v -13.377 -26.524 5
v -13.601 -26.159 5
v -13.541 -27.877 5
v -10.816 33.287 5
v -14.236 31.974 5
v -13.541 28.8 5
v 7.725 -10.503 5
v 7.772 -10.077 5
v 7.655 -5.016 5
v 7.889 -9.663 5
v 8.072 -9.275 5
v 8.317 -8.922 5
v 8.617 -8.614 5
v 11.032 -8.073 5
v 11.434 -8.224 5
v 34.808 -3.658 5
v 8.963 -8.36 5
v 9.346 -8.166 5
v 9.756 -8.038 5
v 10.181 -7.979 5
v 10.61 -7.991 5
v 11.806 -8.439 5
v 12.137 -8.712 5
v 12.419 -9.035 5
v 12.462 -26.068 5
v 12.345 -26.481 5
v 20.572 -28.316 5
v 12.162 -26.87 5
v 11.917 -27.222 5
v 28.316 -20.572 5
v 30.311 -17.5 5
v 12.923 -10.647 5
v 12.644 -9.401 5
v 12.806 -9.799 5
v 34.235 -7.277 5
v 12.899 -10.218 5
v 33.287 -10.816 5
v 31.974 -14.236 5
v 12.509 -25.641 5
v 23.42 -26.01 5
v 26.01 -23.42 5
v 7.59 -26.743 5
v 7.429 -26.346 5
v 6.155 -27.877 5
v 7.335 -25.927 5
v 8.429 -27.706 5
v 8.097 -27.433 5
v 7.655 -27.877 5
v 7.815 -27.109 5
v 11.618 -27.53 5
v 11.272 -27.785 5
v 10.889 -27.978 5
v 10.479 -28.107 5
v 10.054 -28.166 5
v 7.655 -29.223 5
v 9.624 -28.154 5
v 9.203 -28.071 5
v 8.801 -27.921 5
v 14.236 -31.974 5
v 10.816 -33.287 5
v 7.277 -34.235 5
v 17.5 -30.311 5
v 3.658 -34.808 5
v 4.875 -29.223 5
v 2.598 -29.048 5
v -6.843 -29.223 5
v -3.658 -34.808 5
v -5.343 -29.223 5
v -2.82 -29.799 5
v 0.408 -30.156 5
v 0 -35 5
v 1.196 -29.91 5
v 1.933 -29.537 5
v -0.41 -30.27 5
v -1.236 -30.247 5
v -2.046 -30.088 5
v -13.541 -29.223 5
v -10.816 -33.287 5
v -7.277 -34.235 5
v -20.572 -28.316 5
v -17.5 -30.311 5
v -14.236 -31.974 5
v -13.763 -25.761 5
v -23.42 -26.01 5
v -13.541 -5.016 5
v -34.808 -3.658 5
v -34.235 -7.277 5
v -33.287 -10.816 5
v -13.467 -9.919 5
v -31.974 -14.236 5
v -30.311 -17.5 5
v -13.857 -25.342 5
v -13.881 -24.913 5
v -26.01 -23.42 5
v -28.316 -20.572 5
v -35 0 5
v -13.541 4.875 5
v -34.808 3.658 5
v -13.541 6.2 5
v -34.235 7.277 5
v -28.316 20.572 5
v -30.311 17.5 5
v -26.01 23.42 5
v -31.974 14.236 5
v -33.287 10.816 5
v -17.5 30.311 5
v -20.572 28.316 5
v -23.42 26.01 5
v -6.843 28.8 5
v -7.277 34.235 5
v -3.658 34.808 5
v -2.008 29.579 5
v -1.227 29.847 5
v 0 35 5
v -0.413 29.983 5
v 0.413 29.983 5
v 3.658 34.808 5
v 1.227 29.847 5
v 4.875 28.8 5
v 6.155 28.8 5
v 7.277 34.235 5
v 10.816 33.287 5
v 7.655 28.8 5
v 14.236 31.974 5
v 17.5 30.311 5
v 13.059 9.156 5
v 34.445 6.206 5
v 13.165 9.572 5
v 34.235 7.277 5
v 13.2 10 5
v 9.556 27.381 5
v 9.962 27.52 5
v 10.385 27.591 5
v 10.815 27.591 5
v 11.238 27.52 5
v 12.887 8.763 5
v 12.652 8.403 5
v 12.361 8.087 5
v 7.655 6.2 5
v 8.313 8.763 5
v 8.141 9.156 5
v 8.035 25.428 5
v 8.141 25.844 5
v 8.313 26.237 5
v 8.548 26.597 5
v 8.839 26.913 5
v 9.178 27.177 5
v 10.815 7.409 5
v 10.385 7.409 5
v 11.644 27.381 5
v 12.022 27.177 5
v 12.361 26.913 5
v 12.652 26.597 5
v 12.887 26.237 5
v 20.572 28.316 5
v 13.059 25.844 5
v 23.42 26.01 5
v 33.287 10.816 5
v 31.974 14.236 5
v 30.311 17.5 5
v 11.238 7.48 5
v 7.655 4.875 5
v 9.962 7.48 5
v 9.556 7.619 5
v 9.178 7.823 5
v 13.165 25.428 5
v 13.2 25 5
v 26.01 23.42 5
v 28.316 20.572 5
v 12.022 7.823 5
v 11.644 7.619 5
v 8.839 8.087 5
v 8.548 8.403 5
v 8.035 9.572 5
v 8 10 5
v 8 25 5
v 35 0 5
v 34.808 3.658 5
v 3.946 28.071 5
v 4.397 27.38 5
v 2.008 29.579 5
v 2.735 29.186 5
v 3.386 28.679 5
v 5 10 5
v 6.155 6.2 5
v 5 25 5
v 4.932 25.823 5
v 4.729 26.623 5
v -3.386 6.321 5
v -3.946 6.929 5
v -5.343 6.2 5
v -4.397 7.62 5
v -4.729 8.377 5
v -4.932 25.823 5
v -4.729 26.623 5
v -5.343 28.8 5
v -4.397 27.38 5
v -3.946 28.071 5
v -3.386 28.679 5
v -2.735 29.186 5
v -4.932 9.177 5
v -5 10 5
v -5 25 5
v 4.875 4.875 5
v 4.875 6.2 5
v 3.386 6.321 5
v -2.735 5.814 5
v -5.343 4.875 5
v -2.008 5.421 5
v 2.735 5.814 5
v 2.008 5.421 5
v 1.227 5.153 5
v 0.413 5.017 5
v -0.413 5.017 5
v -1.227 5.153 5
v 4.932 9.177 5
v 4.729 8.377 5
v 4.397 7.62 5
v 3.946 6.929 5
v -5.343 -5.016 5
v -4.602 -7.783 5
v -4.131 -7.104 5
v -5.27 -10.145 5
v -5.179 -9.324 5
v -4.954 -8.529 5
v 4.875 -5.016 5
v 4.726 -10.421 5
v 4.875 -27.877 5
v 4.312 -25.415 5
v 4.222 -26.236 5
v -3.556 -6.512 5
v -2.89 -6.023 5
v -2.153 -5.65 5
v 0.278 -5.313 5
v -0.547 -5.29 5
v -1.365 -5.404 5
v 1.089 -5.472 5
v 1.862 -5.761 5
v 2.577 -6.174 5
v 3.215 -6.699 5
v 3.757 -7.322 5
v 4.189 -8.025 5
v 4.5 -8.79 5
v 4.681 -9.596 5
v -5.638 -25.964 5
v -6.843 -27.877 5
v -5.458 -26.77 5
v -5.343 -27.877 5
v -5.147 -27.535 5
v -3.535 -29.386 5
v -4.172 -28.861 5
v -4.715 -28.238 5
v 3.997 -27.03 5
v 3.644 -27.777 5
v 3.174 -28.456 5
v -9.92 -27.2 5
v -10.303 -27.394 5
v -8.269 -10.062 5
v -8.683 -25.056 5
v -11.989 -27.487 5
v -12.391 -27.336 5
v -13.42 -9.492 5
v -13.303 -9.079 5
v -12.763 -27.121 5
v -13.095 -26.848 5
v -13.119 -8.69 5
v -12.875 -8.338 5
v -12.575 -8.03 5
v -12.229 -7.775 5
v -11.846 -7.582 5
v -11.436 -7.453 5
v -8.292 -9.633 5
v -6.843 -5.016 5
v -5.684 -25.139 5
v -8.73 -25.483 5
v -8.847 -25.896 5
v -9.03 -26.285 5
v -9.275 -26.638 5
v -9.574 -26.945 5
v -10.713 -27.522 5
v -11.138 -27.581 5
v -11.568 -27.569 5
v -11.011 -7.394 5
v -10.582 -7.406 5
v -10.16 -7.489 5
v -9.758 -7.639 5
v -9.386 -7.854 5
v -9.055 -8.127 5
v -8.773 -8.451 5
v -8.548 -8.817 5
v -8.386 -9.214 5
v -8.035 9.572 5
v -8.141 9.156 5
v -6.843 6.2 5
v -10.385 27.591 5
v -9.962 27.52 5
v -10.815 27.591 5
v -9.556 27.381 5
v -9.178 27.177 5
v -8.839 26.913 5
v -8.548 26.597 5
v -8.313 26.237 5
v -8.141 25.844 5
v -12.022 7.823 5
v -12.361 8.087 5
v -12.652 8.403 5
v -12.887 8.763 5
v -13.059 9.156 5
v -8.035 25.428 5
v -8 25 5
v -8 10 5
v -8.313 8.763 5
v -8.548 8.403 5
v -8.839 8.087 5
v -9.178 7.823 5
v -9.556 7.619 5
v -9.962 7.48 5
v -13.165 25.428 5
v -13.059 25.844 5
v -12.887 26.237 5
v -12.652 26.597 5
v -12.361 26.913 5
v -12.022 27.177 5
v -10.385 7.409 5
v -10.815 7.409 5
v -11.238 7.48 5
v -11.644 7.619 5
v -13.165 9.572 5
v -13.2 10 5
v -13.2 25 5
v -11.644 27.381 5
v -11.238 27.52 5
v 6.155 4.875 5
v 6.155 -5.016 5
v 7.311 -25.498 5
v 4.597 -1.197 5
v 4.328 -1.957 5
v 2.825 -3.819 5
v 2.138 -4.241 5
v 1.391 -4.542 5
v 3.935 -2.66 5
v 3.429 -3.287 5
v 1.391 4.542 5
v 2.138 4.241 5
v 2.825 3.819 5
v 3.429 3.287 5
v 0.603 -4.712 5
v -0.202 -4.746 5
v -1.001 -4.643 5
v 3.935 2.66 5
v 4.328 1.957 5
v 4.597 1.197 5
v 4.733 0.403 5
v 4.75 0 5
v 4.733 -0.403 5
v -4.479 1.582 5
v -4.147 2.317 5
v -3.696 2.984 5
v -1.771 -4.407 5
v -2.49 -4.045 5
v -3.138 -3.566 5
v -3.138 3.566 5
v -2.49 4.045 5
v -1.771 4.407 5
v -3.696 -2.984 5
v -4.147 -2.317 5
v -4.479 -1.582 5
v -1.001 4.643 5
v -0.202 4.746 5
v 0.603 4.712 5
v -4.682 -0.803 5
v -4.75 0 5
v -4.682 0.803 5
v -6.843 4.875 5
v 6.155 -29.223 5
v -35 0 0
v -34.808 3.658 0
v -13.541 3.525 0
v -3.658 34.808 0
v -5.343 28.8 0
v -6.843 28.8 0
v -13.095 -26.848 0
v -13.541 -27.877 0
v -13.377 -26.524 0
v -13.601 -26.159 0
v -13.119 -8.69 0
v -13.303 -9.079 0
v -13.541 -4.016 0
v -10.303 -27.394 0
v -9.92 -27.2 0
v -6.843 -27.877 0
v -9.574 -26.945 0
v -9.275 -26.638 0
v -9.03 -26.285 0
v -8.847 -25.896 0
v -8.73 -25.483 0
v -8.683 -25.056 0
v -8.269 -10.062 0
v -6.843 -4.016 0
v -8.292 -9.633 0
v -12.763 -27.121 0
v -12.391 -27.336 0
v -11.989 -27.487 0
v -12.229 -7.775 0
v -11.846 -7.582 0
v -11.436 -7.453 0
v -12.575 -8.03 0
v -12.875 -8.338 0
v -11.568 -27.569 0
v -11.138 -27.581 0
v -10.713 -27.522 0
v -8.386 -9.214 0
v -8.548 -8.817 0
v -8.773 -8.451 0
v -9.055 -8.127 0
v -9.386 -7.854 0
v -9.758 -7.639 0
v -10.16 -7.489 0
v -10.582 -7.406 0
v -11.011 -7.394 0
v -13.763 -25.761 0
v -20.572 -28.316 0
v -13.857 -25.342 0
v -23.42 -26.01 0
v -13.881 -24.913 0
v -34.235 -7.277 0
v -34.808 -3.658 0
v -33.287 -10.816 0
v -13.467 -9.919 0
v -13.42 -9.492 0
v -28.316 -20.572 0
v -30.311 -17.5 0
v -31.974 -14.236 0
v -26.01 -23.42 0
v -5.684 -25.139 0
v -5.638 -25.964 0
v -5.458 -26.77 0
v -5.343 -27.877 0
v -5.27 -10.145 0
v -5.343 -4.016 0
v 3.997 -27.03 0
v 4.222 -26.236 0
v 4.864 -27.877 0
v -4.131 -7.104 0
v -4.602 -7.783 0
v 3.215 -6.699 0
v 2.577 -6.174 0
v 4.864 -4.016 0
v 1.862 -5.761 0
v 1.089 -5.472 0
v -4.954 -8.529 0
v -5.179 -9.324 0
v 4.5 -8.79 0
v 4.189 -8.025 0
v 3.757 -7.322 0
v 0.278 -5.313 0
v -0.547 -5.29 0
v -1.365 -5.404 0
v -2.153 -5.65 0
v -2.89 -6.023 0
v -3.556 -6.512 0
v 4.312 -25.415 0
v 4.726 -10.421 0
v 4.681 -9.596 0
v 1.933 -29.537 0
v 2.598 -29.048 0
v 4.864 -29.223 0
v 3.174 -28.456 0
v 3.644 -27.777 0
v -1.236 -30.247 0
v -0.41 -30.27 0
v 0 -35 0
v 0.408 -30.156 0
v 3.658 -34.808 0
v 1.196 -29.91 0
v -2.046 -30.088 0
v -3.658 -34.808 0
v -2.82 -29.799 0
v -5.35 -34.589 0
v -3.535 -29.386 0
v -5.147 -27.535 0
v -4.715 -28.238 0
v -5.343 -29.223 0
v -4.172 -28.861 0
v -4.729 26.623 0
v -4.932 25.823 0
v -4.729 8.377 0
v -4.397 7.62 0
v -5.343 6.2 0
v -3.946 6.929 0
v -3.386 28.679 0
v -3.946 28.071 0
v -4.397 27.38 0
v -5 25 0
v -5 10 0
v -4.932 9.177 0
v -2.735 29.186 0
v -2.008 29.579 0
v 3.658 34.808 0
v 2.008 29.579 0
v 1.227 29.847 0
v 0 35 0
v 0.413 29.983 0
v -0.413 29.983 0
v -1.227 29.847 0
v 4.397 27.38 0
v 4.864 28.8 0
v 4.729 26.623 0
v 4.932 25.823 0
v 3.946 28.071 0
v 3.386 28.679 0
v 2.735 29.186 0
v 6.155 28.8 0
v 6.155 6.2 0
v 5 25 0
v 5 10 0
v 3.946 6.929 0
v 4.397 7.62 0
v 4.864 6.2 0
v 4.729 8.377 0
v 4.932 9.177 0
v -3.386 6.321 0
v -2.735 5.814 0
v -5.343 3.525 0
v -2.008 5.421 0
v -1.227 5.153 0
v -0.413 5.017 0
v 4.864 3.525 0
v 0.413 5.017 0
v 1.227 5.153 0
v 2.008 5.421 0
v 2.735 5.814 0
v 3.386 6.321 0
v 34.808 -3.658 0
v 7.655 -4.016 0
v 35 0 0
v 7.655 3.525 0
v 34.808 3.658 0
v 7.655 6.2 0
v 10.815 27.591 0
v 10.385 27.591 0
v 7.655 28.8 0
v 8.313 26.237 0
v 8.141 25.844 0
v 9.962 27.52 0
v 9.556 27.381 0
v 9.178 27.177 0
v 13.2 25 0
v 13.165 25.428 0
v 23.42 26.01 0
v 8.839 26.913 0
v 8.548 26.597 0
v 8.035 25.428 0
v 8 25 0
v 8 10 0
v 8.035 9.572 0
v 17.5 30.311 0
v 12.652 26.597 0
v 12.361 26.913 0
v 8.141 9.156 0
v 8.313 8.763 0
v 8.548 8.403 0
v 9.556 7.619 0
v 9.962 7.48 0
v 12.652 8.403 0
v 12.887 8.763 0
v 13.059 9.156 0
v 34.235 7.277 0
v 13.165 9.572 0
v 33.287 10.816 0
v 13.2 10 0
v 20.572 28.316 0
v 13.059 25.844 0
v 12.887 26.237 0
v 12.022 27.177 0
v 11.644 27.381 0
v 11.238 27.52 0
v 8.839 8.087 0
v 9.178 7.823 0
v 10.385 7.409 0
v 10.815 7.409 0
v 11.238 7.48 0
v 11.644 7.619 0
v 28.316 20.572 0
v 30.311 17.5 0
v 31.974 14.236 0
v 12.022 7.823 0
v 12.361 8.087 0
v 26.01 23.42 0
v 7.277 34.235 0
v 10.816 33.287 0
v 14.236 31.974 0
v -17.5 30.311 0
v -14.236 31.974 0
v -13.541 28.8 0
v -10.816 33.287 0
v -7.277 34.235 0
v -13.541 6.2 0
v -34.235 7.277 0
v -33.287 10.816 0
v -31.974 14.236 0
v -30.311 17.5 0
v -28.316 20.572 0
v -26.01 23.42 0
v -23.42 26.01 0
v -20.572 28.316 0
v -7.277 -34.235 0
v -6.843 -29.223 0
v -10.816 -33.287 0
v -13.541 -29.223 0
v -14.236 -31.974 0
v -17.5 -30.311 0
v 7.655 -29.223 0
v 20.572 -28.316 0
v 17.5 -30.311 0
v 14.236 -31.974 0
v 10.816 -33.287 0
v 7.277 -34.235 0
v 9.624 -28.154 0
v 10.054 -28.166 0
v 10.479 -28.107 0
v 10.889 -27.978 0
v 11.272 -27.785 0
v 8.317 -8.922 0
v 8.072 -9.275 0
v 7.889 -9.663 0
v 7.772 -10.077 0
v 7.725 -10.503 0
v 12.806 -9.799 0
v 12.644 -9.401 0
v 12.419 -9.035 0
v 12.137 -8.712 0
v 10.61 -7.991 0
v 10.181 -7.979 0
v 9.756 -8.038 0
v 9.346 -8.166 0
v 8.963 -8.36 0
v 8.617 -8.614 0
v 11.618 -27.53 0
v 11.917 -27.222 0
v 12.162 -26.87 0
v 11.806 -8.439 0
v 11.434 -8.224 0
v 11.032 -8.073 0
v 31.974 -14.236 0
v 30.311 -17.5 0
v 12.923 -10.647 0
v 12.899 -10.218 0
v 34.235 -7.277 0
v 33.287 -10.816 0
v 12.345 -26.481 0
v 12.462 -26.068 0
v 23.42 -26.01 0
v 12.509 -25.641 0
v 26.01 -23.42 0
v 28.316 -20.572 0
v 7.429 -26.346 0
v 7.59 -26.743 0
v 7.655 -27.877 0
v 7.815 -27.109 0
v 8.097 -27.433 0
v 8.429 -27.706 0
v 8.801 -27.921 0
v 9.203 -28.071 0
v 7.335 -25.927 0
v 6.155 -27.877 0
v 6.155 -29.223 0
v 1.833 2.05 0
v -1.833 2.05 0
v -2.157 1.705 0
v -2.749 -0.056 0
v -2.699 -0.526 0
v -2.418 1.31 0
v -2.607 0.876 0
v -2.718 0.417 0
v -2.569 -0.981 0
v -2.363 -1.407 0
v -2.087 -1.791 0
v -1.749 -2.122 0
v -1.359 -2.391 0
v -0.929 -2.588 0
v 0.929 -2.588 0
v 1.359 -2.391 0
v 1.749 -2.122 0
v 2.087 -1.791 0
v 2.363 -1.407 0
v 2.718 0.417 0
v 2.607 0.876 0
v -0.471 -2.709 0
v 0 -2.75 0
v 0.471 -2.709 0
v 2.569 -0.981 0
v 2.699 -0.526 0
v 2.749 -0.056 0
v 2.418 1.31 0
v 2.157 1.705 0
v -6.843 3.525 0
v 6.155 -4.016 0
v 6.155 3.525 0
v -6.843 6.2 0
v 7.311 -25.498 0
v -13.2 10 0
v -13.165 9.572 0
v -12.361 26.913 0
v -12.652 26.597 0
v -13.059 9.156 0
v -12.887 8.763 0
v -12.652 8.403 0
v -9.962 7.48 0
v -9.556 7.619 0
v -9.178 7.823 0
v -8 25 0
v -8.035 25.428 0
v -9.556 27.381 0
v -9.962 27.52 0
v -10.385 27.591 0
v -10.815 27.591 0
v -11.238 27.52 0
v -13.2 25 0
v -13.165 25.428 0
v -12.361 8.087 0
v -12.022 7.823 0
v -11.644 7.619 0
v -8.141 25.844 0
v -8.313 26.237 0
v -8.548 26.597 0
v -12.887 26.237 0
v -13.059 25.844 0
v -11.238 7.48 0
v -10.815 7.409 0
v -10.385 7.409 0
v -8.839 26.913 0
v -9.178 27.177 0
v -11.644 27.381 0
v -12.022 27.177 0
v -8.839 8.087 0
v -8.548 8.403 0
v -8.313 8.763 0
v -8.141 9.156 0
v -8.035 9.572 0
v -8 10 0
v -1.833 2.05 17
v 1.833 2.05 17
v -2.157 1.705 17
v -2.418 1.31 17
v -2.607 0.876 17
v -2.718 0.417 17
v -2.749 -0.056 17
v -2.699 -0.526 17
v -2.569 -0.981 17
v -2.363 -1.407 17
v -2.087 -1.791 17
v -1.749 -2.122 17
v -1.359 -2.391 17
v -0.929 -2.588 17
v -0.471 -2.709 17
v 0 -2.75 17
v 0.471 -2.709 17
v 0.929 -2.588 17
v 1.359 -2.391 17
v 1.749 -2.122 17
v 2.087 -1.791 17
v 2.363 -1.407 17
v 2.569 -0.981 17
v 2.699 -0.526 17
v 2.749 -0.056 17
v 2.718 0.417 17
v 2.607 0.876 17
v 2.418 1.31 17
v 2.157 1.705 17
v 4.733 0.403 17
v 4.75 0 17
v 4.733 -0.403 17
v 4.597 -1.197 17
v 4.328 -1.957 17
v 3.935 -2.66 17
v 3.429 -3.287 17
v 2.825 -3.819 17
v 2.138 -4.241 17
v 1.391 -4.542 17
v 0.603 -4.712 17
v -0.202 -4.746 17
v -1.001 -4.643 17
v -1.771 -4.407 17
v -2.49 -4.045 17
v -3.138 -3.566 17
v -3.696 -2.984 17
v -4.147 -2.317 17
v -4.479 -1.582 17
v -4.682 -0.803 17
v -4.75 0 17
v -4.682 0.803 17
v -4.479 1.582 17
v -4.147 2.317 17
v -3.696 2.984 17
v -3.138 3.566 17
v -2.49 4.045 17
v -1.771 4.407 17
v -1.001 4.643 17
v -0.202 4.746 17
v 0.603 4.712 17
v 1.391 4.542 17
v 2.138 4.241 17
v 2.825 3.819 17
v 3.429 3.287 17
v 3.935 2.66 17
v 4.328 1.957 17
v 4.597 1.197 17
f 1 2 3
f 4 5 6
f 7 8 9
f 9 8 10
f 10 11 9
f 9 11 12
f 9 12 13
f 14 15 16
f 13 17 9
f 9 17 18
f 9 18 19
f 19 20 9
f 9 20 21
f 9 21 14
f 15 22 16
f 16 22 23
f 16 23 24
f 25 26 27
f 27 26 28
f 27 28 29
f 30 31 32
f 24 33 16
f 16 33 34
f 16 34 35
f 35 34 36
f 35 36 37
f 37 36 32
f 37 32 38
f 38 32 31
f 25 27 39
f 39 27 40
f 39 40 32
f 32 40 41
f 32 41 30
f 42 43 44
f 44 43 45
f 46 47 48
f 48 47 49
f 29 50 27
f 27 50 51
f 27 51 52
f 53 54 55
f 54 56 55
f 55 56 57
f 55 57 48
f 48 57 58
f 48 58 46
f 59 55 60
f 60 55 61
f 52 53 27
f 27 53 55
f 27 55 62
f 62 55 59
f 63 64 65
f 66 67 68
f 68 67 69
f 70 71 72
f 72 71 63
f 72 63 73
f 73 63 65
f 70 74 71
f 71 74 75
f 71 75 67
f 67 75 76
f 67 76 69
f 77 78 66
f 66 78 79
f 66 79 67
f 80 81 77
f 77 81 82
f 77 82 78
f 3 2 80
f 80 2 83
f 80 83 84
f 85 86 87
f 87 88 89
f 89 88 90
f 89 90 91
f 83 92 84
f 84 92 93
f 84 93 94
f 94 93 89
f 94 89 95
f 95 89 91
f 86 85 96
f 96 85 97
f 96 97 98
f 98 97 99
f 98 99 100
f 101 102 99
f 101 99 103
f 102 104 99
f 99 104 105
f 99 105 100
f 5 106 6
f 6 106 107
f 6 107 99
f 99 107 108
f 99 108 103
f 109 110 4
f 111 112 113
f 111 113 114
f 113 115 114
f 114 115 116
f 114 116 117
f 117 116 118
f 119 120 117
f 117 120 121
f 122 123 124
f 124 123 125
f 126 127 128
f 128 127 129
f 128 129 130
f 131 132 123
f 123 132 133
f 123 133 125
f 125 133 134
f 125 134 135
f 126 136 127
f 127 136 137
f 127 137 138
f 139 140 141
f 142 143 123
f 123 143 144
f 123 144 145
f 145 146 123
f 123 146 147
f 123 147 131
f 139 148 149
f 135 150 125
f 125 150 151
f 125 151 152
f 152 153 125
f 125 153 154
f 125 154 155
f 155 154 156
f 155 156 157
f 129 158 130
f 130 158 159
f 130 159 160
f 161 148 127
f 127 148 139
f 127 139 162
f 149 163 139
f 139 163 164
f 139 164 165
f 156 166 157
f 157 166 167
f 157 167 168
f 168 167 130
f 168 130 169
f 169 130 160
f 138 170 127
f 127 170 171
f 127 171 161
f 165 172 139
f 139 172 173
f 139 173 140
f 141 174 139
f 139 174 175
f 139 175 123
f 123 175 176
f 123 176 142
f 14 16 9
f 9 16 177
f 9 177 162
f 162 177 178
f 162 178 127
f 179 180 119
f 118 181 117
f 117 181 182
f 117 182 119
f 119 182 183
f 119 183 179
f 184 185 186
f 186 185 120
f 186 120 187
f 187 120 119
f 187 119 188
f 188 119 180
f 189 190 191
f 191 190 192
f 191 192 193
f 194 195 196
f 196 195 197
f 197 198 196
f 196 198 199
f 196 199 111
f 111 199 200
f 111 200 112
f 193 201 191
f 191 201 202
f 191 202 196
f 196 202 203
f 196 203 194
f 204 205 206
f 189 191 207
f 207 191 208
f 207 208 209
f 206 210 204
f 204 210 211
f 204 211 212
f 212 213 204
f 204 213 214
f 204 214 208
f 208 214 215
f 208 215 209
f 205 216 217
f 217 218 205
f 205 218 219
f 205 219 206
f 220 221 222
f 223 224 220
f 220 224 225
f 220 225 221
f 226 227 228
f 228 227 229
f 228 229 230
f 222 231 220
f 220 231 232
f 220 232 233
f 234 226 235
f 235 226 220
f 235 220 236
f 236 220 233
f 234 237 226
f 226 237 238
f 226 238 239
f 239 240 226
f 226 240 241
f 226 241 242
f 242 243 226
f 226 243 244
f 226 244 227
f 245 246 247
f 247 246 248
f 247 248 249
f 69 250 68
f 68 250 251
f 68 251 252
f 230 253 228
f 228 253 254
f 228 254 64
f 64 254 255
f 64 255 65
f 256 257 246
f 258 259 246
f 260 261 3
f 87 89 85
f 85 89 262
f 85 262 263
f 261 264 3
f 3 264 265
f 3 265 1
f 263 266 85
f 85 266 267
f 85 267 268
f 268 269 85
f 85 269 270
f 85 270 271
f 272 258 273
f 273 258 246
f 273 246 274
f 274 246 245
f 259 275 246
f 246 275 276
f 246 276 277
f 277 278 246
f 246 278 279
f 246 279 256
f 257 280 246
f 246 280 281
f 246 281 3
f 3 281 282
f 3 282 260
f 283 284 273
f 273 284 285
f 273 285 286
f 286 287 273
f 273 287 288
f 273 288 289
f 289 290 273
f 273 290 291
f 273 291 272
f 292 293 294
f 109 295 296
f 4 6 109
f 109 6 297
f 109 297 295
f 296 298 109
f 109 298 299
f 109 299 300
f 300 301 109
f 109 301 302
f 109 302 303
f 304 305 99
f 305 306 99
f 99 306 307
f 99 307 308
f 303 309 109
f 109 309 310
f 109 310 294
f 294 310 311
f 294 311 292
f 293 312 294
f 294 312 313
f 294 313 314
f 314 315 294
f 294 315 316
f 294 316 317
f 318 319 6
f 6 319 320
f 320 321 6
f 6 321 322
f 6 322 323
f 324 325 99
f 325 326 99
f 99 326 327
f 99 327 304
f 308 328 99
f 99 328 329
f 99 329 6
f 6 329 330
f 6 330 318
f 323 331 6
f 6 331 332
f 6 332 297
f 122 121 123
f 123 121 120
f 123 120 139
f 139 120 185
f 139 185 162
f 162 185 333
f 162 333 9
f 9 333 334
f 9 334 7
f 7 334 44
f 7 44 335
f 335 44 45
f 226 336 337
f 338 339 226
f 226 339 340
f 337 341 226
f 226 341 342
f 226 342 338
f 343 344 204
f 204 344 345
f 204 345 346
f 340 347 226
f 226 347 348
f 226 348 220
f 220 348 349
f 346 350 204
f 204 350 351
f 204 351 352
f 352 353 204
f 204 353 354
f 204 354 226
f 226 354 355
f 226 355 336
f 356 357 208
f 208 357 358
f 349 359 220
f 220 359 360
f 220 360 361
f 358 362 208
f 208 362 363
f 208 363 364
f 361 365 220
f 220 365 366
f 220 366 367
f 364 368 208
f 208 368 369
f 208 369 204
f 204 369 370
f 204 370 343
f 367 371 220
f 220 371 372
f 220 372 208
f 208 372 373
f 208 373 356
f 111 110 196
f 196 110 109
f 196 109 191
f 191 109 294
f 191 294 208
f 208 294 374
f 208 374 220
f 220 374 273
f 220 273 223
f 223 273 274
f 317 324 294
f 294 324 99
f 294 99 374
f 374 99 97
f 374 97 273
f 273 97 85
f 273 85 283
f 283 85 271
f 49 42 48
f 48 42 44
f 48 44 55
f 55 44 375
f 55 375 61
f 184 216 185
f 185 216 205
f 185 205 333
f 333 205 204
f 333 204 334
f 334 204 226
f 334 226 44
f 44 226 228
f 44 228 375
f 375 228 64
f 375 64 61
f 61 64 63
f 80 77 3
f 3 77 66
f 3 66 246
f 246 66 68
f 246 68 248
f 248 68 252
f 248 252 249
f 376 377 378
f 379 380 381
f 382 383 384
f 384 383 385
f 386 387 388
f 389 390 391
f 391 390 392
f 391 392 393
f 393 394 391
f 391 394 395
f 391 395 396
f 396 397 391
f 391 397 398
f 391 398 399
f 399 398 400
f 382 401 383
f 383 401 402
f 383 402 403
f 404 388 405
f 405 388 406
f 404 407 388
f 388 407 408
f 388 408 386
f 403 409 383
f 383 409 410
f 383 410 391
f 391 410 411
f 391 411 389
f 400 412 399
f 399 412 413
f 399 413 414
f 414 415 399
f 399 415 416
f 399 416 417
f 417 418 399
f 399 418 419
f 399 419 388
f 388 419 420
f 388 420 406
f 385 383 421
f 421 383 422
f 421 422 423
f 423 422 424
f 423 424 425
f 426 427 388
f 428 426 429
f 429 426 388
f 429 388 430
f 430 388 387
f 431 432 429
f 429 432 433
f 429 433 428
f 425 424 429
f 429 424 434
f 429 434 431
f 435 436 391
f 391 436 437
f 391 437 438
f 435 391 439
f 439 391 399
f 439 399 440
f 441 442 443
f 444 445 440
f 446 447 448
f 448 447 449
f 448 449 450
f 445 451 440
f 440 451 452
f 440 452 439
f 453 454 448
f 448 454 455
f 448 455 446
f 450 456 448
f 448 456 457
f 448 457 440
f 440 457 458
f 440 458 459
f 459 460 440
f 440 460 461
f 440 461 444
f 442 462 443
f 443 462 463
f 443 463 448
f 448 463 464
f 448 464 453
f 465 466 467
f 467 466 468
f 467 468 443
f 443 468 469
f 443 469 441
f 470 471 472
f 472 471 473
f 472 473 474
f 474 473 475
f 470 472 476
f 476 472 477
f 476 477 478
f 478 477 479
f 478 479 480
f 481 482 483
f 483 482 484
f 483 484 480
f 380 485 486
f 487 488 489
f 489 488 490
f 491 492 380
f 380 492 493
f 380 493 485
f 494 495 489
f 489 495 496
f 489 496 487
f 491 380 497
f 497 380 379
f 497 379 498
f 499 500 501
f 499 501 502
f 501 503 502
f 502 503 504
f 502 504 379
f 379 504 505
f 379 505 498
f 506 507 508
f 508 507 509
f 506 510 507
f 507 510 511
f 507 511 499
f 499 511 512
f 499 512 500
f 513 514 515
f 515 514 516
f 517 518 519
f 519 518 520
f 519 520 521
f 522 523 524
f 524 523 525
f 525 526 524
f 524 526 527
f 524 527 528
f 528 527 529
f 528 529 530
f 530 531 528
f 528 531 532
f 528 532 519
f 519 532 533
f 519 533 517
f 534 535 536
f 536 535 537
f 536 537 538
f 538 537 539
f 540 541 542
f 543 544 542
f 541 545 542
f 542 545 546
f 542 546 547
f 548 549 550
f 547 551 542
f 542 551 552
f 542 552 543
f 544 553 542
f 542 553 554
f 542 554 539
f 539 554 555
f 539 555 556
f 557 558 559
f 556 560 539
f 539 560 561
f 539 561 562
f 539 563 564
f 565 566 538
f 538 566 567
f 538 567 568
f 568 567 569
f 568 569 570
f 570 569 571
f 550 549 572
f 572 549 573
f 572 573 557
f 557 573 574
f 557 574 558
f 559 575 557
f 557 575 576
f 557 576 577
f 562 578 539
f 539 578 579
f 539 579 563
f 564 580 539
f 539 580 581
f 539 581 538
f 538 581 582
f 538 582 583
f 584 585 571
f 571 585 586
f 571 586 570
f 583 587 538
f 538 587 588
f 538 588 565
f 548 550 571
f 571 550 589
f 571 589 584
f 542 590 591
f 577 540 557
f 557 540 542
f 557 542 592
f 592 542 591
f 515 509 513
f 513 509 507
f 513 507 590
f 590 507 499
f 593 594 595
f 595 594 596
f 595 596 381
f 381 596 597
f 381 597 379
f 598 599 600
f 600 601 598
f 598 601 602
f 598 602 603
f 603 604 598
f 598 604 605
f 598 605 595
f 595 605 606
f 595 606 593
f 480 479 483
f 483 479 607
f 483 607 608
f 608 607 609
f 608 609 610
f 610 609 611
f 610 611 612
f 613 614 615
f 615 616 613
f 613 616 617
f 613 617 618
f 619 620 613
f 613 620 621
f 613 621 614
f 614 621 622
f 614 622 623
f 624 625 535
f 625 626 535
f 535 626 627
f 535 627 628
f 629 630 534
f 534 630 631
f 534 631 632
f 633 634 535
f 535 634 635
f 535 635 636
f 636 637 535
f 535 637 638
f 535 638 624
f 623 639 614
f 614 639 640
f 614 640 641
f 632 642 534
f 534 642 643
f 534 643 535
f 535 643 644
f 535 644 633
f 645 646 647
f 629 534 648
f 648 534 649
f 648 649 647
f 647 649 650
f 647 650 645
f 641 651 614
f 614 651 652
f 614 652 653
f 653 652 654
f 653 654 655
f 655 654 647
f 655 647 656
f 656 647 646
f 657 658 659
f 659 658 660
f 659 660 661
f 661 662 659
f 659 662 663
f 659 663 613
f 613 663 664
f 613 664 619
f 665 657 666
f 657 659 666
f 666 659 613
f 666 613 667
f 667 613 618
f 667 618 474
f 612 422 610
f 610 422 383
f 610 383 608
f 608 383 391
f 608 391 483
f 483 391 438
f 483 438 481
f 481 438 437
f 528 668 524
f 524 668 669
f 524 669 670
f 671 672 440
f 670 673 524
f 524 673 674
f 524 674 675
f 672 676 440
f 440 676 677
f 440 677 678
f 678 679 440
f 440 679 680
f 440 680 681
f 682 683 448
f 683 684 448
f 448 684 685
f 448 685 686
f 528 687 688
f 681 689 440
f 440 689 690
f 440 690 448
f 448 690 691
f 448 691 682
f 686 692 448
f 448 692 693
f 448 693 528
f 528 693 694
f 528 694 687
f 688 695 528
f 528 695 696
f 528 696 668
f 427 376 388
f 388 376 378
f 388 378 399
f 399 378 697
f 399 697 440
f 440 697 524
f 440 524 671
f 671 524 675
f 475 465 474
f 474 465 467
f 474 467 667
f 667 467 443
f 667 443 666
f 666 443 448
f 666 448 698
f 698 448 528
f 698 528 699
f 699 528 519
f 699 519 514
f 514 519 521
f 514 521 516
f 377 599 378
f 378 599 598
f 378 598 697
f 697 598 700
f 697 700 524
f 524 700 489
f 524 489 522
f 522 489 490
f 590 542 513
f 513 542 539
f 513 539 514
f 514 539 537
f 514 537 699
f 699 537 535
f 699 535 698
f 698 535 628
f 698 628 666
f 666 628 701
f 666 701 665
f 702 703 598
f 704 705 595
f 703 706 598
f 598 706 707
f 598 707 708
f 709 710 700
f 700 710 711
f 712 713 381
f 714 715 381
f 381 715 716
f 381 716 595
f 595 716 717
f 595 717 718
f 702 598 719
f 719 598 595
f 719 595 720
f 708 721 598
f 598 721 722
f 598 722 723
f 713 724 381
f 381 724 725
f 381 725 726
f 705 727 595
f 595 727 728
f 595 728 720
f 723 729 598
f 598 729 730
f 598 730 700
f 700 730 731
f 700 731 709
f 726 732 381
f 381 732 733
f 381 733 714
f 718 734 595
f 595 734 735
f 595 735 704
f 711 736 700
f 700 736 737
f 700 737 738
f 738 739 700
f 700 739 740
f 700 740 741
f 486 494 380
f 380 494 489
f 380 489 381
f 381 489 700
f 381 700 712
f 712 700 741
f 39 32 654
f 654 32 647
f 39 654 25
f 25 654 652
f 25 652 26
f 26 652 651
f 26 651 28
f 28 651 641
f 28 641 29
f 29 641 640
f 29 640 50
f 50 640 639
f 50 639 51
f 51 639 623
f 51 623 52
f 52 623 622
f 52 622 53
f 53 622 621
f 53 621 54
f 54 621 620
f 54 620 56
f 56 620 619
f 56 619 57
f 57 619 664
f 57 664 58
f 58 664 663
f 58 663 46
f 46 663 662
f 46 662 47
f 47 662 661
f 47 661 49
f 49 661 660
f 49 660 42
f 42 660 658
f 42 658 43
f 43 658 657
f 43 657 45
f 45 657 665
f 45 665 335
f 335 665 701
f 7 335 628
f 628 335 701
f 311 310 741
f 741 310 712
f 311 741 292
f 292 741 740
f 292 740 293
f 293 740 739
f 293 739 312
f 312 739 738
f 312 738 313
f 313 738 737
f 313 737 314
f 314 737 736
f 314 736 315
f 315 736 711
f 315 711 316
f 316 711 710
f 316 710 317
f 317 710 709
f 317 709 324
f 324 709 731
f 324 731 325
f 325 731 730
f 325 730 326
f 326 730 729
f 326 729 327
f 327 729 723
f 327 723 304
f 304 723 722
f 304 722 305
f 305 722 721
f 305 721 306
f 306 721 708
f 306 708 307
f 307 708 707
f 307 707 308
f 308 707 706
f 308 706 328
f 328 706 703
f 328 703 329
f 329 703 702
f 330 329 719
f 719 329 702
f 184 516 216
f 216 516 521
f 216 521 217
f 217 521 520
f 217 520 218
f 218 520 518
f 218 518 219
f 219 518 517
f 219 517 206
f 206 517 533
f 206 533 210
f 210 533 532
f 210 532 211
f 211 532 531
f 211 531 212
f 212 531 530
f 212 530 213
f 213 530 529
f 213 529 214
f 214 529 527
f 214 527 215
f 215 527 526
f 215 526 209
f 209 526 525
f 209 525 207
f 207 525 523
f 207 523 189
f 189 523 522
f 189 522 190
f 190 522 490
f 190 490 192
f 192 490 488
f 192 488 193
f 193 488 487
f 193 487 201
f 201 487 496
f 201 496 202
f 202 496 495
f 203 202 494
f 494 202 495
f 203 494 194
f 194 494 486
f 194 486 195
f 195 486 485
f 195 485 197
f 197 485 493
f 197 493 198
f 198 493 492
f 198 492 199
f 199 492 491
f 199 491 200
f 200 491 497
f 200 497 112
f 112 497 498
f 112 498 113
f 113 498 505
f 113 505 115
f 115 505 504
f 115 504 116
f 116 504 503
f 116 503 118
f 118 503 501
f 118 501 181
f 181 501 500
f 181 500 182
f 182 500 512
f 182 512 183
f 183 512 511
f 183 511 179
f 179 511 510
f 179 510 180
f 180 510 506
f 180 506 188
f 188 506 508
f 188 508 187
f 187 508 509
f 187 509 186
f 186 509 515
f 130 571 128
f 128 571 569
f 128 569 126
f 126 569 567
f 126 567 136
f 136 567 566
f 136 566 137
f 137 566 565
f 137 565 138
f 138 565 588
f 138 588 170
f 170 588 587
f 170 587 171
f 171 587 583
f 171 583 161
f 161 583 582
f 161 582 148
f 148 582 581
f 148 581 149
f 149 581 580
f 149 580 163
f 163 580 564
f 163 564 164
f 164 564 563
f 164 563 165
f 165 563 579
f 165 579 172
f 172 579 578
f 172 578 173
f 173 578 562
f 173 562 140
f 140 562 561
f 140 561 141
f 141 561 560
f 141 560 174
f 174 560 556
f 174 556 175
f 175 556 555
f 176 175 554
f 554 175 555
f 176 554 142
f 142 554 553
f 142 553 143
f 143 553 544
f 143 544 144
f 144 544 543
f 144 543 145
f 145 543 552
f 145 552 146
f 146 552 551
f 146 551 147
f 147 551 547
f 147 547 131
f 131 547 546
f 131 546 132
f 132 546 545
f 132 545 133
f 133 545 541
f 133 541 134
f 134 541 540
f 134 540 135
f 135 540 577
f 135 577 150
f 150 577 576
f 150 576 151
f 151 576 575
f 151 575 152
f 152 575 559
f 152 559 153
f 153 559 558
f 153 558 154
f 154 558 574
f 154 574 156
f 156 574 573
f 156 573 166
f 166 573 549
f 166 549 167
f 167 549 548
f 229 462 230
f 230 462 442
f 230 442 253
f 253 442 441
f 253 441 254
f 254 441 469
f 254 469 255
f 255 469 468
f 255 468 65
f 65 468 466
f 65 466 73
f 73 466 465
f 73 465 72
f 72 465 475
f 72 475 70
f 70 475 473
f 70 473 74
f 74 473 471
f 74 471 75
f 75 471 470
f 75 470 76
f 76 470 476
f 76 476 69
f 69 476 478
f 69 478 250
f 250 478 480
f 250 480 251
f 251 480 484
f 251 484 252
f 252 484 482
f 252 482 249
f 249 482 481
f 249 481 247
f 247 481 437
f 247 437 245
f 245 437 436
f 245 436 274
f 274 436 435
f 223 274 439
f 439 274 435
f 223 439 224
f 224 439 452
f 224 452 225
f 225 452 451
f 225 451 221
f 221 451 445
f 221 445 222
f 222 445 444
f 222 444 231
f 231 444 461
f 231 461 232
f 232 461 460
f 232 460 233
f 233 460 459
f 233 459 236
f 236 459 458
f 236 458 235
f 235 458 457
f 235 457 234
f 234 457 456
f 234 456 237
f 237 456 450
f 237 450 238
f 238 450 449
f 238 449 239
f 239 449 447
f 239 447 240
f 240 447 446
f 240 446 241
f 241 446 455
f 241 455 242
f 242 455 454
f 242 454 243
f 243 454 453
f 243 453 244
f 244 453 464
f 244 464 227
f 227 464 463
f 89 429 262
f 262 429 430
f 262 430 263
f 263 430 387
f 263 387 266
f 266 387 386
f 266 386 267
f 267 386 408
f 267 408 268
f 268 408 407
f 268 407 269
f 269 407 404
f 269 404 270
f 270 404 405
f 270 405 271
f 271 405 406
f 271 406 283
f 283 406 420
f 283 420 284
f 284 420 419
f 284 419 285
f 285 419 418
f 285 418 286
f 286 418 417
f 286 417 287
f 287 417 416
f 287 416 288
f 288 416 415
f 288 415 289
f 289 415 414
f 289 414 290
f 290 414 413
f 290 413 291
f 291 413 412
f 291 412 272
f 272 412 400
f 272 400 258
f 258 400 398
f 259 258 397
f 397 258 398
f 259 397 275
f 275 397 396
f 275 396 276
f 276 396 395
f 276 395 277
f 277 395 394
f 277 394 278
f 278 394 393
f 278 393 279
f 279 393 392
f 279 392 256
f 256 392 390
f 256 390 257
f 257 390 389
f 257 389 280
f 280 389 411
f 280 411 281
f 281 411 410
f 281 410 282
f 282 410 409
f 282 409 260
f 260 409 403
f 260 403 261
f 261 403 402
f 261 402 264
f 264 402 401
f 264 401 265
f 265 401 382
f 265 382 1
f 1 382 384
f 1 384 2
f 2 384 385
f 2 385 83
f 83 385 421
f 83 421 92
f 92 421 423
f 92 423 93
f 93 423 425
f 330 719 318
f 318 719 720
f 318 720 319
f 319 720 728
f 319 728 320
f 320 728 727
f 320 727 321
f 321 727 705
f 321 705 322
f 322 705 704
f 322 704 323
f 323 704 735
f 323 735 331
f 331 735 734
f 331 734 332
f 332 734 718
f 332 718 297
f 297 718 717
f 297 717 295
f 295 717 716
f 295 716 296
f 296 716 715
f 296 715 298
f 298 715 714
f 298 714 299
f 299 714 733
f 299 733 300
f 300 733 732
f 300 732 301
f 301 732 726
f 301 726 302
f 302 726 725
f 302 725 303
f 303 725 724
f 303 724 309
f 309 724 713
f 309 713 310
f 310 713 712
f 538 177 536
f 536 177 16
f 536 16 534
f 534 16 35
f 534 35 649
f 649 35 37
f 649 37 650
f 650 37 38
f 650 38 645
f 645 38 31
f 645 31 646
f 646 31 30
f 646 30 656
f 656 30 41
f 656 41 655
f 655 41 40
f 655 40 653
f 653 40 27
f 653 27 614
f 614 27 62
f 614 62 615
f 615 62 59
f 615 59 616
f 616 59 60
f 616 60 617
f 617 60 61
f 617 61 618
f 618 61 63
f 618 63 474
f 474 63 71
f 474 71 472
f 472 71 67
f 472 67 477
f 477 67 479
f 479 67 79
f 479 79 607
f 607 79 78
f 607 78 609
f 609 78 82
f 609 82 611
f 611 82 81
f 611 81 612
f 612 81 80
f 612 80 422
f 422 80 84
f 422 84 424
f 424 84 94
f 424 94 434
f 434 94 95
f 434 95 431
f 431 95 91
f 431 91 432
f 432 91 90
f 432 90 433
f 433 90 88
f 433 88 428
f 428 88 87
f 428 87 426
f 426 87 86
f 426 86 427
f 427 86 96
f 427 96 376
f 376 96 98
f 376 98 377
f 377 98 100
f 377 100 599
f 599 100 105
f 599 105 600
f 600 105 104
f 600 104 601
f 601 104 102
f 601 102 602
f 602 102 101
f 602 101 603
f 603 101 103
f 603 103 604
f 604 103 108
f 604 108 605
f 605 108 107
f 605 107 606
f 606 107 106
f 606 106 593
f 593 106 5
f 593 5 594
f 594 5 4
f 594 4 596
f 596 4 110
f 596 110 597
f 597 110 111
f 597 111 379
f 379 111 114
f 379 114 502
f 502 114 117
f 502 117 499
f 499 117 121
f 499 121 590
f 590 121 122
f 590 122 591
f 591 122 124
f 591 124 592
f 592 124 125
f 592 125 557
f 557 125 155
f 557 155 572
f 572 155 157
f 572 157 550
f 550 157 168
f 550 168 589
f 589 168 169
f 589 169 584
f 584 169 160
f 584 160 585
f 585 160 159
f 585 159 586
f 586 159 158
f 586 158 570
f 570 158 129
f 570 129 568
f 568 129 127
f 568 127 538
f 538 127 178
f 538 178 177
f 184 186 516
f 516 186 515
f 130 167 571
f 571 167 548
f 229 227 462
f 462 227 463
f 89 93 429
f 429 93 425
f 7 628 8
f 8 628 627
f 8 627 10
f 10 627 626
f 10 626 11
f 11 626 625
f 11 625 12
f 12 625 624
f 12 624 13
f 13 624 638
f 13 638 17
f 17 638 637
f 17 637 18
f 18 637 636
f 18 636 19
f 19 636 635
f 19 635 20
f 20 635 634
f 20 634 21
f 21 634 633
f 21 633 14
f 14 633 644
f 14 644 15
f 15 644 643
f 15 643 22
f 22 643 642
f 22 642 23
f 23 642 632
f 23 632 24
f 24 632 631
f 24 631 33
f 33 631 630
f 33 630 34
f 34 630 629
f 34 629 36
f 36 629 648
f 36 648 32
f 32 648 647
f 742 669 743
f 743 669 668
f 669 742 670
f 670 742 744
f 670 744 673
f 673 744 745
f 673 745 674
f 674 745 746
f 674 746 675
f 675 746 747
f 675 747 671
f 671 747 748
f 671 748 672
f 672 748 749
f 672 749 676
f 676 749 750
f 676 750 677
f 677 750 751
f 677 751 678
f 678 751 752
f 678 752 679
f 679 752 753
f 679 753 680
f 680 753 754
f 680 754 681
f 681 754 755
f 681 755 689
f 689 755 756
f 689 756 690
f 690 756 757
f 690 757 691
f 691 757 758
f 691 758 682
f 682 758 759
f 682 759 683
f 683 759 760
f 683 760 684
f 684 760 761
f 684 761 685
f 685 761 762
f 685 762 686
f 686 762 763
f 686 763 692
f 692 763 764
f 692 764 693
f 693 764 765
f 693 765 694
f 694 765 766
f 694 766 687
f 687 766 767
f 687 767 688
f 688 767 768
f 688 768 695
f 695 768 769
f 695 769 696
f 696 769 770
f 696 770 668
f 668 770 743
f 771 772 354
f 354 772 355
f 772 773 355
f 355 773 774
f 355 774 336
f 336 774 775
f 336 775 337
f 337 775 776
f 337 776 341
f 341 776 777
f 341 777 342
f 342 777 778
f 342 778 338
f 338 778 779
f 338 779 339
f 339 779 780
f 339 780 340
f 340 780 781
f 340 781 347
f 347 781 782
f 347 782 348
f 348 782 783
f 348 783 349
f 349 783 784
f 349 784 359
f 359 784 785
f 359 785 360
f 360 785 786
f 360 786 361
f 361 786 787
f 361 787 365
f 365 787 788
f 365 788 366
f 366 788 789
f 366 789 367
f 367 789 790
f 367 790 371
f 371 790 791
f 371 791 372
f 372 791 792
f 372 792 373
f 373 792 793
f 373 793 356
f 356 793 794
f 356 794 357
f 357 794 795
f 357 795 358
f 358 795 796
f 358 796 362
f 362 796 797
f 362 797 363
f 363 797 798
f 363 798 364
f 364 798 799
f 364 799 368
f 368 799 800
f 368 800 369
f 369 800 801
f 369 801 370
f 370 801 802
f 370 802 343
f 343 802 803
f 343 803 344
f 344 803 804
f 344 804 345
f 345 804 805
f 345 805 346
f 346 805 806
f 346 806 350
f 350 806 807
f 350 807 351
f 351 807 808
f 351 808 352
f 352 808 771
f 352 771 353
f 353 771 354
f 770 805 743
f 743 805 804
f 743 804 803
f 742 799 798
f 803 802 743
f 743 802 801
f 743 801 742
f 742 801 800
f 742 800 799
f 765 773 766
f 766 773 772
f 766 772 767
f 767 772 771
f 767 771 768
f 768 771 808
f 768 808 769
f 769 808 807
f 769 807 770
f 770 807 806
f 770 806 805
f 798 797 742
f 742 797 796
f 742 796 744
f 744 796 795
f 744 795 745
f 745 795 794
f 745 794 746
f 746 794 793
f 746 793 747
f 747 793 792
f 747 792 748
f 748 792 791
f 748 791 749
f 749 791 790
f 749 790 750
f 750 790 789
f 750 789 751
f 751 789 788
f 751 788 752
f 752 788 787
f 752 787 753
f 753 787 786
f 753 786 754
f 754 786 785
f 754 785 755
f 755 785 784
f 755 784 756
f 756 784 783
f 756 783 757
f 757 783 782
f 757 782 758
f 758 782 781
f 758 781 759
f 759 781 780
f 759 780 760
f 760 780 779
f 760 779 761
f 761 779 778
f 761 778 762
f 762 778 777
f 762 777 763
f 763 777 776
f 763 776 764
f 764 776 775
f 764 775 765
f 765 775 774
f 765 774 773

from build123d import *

# Parameters (mm, degrees)
ESQUISSE1_R             = 35
BOSS_EXTRU_1_DEPTH      = 5
ENL_V_MAT_EXTRU_1_REACH = 51.749
BOSS_EXTRU_3_START      = 12
ESQUISSE3_R             = 4.75
BOSS_EXTRU_3_DEPTH      = 12


with BuildPart() as part:
    # Esquisse1 → Boss.-Extru.1 (new body)
    with BuildSketch(Plane.XY):
        Circle(ESQUISSE1_R)
        with BuildLine():
            ThreePointArc((4.728110875, -10.282810642), (4.727635283, -10.351772147), (4.726208599, -10.420720532))
            Line((4.726208599, -10.420720532), (4.312478928, -25.415013705))
            ThreePointArc((4.312478928, -25.415013705), (-0.823528687, -30.275201539), (-5.683716521, -25.139193925))
            Line((-5.683716521, -25.139193925), (-5.26998685, -10.144900751))
            ThreePointArc((-5.26998685, -10.144900751), (-0.202927621, -5.283286233), (4.728110875, -10.282810642))
        make_face(mode=Mode.SUBTRACT)
        with BuildLine():
            Line((-8.268845484, -10.062154817), (-8.682575156, -25.05644799))
            ThreePointArc((-8.682575156, -25.05644799), (-11.353299115, -27.583745664), (-13.880596789, -24.913021704))
            Line((-13.880596789, -24.913021704), (-13.466867118, -9.918728531))
            ThreePointArc((-13.466867118, -9.918728531), (-10.796143158, -7.391430858), (-8.268845484, -10.062154817))
        make_face(mode=Mode.SUBTRACT)
        with BuildLine():
            Line((12.923088867, -10.646892753), (12.509359196, -25.641185926))
            ThreePointArc((12.509359196, -25.641185926), (9.838635236, -28.168483599), (7.311337562, -25.49775964))
            Line((7.311337562, -25.49775964), (7.725067233, -10.503466467))
            ThreePointArc((7.725067233, -10.503466467), (10.395791193, -7.976168793), (12.923088867, -10.646892753))
        make_face(mode=Mode.SUBTRACT)
        with BuildLine():
            Line((-13.2, 10), (-13.2, 25))
            ThreePointArc((-13.2, 25), (-10.6, 27.6), (-8, 25))
            Line((-8, 25), (-8, 10))
            ThreePointArc((-8, 10), (-10.6, 7.4), (-13.2, 10))
        make_face(mode=Mode.SUBTRACT)
        with BuildLine():
            ThreePointArc((5, 10), (0, 5), (-5, 10))
            Line((-5, 10), (-5, 25))
            ThreePointArc((-5, 25), (0, 30), (5, 25))
            Line((5, 25), (5, 10))
        make_face(mode=Mode.SUBTRACT)
        with BuildLine():
            ThreePointArc((8, 25), (10.6, 27.6), (13.2, 25))
            Line((13.2, 25), (13.2, 10))
            ThreePointArc((13.2, 10), (10.6, 7.4), (8, 10))
            Line((8, 10), (8, 25))
        make_face(mode=Mode.SUBTRACT)
    extrude(amount=BOSS_EXTRU_1_DEPTH)

    # Esquisse2 → Enlèv. mat.-Extru.1 (cut, up to next)
    with BuildSketch(Plane.XY.offset(5), mode=Mode.PRIVATE) as enl_v_mat_extru_1_sk1:
        with BuildLine():
            Line((1.833030278, 2.05), (-1.833030278, 2.05))
            ThreePointArc((-1.833030278, 2.05), (-1.122868366, -2.510312059), (2.75, 0))
            ThreePointArc((2.75, 0), (2.510312059, 1.122868366), (1.833030278, 2.05))
        make_face()
    enl_v_mat_extru_1_tool1 = extrude(enl_v_mat_extru_1_sk1.sketch, amount=-ENL_V_MAT_EXTRU_1_REACH, mode=Mode.PRIVATE) & part.part
    add(enl_v_mat_extru_1_tool1.solids().sort_by_distance((0, -0.186648, 5))[0], mode=Mode.SUBTRACT)

    # Esquisse3 → Boss.-Extru.3 (add)
    with BuildSketch(Plane.XY.offset(5).offset(BOSS_EXTRU_3_START)):
        Circle(ESQUISSE3_R)
        with BuildLine():
            ThreePointArc((1.833030278, 2.05), (0, -2.75), (-1.833030278, 2.05))
            Line((-1.833030278, 2.05), (1.833030278, 2.05))
        make_face(mode=Mode.SUBTRACT)
    extrude(amount=-BOSS_EXTRU_3_DEPTH)


solid = part.part
